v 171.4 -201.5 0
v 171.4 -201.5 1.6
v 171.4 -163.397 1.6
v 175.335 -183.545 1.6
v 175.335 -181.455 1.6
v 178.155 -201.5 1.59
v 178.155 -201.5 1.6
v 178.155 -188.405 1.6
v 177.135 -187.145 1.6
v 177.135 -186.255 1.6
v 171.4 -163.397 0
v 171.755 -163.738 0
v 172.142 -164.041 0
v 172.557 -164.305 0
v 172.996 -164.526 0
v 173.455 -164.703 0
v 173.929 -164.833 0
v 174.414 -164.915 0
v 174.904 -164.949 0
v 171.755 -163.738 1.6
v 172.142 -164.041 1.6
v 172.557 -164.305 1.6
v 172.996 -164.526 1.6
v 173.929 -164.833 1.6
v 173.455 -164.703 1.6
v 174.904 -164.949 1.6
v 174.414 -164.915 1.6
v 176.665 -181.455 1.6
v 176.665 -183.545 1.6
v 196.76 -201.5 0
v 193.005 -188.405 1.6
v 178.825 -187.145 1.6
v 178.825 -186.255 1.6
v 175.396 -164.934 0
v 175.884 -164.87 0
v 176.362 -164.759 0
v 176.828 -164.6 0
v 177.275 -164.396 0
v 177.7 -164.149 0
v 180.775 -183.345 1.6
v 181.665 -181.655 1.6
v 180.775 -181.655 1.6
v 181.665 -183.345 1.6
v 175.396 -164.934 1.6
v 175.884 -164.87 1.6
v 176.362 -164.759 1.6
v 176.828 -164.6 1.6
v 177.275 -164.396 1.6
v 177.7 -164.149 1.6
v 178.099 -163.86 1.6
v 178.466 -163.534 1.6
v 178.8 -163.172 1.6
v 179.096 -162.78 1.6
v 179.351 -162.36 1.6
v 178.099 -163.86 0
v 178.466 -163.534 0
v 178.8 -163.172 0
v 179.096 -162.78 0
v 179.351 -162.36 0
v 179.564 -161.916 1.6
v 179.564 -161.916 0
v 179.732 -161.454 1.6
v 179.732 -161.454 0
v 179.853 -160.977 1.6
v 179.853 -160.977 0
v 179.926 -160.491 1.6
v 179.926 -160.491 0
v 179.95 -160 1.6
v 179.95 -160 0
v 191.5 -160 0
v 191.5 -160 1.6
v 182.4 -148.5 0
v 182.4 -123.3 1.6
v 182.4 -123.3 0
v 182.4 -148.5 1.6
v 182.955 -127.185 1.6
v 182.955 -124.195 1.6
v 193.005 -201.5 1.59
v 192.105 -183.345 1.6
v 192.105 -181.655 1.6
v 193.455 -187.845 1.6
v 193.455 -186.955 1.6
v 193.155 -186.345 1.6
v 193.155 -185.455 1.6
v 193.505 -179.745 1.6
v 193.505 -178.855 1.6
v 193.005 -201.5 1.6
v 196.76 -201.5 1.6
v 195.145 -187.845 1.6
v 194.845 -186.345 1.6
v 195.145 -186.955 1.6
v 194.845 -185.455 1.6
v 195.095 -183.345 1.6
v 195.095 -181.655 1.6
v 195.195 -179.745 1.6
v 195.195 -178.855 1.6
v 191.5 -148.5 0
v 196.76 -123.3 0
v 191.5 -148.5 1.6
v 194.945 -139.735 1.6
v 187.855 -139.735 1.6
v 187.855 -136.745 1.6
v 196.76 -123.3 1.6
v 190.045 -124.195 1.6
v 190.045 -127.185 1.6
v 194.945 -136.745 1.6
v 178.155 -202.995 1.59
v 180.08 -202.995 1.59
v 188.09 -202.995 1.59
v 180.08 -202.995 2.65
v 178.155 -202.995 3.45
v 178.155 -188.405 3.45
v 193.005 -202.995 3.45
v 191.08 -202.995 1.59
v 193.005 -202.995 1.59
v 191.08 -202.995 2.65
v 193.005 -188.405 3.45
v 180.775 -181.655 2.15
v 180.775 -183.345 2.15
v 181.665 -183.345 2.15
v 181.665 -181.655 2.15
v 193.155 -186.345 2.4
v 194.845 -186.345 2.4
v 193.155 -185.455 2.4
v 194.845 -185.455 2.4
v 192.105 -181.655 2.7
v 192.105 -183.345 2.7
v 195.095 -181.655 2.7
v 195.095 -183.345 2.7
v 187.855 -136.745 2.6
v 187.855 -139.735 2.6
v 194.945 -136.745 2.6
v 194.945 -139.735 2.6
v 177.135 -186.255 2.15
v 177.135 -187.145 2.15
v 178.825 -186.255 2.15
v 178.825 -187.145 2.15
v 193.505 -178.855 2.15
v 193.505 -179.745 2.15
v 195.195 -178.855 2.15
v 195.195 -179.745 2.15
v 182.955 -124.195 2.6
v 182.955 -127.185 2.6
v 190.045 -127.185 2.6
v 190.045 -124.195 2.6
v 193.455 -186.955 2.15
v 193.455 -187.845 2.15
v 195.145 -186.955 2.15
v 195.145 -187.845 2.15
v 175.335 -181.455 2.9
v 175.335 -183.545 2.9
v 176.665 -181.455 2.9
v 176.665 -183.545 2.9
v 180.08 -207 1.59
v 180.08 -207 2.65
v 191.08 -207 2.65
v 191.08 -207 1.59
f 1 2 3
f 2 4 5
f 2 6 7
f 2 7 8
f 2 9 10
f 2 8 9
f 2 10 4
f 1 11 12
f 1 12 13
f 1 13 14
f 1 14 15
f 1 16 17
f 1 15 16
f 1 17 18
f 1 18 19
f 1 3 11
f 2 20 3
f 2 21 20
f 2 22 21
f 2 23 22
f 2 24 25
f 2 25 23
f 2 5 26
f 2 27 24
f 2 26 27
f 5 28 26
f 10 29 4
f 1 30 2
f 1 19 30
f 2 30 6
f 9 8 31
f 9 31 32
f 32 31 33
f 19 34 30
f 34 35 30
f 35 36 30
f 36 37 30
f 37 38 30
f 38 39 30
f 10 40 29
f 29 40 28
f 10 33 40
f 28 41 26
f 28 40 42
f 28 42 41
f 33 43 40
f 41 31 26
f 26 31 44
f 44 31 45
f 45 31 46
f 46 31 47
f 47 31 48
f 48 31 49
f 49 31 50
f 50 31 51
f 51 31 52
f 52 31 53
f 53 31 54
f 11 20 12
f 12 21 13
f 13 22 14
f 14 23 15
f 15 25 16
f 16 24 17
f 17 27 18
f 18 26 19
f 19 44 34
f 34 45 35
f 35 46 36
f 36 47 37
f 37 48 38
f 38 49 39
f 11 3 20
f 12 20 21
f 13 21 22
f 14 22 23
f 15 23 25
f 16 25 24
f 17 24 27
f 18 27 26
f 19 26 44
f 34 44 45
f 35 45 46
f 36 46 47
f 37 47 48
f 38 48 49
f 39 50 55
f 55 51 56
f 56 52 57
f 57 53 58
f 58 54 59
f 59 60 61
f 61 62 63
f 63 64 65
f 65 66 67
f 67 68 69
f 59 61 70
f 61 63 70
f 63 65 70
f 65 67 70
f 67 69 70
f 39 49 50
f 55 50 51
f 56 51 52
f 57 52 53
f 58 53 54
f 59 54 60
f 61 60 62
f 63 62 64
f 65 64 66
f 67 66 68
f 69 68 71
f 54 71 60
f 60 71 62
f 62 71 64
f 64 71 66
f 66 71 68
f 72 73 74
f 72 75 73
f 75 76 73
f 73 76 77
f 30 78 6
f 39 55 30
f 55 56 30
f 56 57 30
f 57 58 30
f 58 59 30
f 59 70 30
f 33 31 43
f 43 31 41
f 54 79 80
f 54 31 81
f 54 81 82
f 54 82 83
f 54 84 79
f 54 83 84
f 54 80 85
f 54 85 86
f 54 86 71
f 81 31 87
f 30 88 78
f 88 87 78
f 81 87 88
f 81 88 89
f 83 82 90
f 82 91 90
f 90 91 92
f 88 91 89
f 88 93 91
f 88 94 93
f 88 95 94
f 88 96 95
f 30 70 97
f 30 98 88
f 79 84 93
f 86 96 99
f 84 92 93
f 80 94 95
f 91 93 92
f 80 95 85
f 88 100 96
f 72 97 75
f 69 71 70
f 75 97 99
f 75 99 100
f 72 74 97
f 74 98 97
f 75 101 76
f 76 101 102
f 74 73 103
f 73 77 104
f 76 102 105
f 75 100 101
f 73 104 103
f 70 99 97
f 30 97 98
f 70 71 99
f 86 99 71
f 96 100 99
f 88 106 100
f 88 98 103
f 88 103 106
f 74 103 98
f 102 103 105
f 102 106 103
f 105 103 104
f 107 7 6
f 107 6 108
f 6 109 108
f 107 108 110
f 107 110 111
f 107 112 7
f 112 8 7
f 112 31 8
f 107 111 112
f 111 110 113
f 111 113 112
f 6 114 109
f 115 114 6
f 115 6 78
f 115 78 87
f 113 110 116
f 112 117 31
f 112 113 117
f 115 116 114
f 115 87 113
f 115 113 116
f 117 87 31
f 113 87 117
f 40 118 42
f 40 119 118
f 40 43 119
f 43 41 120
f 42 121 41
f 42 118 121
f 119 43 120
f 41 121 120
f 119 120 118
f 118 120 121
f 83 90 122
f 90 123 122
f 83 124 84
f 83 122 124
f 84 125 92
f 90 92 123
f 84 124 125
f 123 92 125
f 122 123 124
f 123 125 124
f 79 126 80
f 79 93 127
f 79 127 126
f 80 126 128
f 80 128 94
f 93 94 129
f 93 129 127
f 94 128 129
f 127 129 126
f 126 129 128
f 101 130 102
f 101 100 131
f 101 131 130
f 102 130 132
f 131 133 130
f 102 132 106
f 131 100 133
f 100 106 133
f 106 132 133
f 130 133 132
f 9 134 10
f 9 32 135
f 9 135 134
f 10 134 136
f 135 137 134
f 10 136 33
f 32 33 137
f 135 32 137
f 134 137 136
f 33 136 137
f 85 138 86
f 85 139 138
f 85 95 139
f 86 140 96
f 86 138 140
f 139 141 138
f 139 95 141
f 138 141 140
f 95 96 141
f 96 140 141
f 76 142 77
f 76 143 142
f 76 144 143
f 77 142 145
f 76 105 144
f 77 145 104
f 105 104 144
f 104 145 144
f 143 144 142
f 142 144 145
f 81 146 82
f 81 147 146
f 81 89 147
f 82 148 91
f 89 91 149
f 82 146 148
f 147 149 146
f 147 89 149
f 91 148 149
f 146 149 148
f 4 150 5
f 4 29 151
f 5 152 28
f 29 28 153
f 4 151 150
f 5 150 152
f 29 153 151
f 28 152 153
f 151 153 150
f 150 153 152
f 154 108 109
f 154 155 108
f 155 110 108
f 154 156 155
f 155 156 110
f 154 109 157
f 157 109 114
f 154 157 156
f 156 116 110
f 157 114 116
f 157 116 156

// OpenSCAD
// generated by make_mockup.py: the SD board's outline and its parts as blocks
union() {
  linear_extrude(1.6) polygon([[196.76, -201.5], [171.4, -201.5], [171.4, -163.397], [171.755, -163.738], [172.142, -164.041], [172.557, -164.305], [172.996, -164.526], [173.455, -164.703], [173.929, -164.833], [174.414, -164.915], [174.904, -164.949], [175.396, -164.934], [175.884, -164.87], [176.362, -164.759], [176.828, -164.6], [177.275, -164.396], [177.7, -164.149], [178.099, -163.86], [178.466, -163.534], [178.8, -163.172], [179.096, -162.78], [179.351, -162.36], [179.564, -161.916], [179.732, -161.454], [179.853, -160.977], [179.926, -160.491], [179.95, -160.0], [191.5, -160.0], [191.5, -148.5], [182.4, -148.5], [182.4, -123.3], [196.76, -123.3]]);
  translate([193.505, -179.745, 1.59]) cube([1.690, 0.890, 0.56]);  // R4
  translate([193.155, -186.345, 1.59]) cube([1.690, 0.890, 0.81]);  // C2
  translate([188.855, -144.735, 1.59]) cube([7.090, 2.990, 1.01]);  // J2
  translate([178.155, -202.995, 1.59]) cube([14.850, 14.590, 1.86]);  // J1
  translate([180.775, -183.345, 1.59]) cube([0.890, 1.690, 0.56]);  // R1
  translate([182.955, -127.185, 1.59]) cube([7.090, 2.990, 1.01]);  // J3
  translate([192.105, -183.345, 1.59]) cube([2.990, 1.690, 1.11]);  // U1
  translate([193.455, -187.845, 1.59]) cube([1.690, 0.890, 0.56]);  // R2
  translate([175.335, -183.545, 1.59]) cube([1.330, 2.090, 1.31]);  // C1
  translate([177.135, -187.145, 1.59]) cube([1.690, 0.890, 0.56]);  // R3
  translate([180.080, -207.000, 1.59]) cube([11.000, 15.000, 1.06]);  // card
}
